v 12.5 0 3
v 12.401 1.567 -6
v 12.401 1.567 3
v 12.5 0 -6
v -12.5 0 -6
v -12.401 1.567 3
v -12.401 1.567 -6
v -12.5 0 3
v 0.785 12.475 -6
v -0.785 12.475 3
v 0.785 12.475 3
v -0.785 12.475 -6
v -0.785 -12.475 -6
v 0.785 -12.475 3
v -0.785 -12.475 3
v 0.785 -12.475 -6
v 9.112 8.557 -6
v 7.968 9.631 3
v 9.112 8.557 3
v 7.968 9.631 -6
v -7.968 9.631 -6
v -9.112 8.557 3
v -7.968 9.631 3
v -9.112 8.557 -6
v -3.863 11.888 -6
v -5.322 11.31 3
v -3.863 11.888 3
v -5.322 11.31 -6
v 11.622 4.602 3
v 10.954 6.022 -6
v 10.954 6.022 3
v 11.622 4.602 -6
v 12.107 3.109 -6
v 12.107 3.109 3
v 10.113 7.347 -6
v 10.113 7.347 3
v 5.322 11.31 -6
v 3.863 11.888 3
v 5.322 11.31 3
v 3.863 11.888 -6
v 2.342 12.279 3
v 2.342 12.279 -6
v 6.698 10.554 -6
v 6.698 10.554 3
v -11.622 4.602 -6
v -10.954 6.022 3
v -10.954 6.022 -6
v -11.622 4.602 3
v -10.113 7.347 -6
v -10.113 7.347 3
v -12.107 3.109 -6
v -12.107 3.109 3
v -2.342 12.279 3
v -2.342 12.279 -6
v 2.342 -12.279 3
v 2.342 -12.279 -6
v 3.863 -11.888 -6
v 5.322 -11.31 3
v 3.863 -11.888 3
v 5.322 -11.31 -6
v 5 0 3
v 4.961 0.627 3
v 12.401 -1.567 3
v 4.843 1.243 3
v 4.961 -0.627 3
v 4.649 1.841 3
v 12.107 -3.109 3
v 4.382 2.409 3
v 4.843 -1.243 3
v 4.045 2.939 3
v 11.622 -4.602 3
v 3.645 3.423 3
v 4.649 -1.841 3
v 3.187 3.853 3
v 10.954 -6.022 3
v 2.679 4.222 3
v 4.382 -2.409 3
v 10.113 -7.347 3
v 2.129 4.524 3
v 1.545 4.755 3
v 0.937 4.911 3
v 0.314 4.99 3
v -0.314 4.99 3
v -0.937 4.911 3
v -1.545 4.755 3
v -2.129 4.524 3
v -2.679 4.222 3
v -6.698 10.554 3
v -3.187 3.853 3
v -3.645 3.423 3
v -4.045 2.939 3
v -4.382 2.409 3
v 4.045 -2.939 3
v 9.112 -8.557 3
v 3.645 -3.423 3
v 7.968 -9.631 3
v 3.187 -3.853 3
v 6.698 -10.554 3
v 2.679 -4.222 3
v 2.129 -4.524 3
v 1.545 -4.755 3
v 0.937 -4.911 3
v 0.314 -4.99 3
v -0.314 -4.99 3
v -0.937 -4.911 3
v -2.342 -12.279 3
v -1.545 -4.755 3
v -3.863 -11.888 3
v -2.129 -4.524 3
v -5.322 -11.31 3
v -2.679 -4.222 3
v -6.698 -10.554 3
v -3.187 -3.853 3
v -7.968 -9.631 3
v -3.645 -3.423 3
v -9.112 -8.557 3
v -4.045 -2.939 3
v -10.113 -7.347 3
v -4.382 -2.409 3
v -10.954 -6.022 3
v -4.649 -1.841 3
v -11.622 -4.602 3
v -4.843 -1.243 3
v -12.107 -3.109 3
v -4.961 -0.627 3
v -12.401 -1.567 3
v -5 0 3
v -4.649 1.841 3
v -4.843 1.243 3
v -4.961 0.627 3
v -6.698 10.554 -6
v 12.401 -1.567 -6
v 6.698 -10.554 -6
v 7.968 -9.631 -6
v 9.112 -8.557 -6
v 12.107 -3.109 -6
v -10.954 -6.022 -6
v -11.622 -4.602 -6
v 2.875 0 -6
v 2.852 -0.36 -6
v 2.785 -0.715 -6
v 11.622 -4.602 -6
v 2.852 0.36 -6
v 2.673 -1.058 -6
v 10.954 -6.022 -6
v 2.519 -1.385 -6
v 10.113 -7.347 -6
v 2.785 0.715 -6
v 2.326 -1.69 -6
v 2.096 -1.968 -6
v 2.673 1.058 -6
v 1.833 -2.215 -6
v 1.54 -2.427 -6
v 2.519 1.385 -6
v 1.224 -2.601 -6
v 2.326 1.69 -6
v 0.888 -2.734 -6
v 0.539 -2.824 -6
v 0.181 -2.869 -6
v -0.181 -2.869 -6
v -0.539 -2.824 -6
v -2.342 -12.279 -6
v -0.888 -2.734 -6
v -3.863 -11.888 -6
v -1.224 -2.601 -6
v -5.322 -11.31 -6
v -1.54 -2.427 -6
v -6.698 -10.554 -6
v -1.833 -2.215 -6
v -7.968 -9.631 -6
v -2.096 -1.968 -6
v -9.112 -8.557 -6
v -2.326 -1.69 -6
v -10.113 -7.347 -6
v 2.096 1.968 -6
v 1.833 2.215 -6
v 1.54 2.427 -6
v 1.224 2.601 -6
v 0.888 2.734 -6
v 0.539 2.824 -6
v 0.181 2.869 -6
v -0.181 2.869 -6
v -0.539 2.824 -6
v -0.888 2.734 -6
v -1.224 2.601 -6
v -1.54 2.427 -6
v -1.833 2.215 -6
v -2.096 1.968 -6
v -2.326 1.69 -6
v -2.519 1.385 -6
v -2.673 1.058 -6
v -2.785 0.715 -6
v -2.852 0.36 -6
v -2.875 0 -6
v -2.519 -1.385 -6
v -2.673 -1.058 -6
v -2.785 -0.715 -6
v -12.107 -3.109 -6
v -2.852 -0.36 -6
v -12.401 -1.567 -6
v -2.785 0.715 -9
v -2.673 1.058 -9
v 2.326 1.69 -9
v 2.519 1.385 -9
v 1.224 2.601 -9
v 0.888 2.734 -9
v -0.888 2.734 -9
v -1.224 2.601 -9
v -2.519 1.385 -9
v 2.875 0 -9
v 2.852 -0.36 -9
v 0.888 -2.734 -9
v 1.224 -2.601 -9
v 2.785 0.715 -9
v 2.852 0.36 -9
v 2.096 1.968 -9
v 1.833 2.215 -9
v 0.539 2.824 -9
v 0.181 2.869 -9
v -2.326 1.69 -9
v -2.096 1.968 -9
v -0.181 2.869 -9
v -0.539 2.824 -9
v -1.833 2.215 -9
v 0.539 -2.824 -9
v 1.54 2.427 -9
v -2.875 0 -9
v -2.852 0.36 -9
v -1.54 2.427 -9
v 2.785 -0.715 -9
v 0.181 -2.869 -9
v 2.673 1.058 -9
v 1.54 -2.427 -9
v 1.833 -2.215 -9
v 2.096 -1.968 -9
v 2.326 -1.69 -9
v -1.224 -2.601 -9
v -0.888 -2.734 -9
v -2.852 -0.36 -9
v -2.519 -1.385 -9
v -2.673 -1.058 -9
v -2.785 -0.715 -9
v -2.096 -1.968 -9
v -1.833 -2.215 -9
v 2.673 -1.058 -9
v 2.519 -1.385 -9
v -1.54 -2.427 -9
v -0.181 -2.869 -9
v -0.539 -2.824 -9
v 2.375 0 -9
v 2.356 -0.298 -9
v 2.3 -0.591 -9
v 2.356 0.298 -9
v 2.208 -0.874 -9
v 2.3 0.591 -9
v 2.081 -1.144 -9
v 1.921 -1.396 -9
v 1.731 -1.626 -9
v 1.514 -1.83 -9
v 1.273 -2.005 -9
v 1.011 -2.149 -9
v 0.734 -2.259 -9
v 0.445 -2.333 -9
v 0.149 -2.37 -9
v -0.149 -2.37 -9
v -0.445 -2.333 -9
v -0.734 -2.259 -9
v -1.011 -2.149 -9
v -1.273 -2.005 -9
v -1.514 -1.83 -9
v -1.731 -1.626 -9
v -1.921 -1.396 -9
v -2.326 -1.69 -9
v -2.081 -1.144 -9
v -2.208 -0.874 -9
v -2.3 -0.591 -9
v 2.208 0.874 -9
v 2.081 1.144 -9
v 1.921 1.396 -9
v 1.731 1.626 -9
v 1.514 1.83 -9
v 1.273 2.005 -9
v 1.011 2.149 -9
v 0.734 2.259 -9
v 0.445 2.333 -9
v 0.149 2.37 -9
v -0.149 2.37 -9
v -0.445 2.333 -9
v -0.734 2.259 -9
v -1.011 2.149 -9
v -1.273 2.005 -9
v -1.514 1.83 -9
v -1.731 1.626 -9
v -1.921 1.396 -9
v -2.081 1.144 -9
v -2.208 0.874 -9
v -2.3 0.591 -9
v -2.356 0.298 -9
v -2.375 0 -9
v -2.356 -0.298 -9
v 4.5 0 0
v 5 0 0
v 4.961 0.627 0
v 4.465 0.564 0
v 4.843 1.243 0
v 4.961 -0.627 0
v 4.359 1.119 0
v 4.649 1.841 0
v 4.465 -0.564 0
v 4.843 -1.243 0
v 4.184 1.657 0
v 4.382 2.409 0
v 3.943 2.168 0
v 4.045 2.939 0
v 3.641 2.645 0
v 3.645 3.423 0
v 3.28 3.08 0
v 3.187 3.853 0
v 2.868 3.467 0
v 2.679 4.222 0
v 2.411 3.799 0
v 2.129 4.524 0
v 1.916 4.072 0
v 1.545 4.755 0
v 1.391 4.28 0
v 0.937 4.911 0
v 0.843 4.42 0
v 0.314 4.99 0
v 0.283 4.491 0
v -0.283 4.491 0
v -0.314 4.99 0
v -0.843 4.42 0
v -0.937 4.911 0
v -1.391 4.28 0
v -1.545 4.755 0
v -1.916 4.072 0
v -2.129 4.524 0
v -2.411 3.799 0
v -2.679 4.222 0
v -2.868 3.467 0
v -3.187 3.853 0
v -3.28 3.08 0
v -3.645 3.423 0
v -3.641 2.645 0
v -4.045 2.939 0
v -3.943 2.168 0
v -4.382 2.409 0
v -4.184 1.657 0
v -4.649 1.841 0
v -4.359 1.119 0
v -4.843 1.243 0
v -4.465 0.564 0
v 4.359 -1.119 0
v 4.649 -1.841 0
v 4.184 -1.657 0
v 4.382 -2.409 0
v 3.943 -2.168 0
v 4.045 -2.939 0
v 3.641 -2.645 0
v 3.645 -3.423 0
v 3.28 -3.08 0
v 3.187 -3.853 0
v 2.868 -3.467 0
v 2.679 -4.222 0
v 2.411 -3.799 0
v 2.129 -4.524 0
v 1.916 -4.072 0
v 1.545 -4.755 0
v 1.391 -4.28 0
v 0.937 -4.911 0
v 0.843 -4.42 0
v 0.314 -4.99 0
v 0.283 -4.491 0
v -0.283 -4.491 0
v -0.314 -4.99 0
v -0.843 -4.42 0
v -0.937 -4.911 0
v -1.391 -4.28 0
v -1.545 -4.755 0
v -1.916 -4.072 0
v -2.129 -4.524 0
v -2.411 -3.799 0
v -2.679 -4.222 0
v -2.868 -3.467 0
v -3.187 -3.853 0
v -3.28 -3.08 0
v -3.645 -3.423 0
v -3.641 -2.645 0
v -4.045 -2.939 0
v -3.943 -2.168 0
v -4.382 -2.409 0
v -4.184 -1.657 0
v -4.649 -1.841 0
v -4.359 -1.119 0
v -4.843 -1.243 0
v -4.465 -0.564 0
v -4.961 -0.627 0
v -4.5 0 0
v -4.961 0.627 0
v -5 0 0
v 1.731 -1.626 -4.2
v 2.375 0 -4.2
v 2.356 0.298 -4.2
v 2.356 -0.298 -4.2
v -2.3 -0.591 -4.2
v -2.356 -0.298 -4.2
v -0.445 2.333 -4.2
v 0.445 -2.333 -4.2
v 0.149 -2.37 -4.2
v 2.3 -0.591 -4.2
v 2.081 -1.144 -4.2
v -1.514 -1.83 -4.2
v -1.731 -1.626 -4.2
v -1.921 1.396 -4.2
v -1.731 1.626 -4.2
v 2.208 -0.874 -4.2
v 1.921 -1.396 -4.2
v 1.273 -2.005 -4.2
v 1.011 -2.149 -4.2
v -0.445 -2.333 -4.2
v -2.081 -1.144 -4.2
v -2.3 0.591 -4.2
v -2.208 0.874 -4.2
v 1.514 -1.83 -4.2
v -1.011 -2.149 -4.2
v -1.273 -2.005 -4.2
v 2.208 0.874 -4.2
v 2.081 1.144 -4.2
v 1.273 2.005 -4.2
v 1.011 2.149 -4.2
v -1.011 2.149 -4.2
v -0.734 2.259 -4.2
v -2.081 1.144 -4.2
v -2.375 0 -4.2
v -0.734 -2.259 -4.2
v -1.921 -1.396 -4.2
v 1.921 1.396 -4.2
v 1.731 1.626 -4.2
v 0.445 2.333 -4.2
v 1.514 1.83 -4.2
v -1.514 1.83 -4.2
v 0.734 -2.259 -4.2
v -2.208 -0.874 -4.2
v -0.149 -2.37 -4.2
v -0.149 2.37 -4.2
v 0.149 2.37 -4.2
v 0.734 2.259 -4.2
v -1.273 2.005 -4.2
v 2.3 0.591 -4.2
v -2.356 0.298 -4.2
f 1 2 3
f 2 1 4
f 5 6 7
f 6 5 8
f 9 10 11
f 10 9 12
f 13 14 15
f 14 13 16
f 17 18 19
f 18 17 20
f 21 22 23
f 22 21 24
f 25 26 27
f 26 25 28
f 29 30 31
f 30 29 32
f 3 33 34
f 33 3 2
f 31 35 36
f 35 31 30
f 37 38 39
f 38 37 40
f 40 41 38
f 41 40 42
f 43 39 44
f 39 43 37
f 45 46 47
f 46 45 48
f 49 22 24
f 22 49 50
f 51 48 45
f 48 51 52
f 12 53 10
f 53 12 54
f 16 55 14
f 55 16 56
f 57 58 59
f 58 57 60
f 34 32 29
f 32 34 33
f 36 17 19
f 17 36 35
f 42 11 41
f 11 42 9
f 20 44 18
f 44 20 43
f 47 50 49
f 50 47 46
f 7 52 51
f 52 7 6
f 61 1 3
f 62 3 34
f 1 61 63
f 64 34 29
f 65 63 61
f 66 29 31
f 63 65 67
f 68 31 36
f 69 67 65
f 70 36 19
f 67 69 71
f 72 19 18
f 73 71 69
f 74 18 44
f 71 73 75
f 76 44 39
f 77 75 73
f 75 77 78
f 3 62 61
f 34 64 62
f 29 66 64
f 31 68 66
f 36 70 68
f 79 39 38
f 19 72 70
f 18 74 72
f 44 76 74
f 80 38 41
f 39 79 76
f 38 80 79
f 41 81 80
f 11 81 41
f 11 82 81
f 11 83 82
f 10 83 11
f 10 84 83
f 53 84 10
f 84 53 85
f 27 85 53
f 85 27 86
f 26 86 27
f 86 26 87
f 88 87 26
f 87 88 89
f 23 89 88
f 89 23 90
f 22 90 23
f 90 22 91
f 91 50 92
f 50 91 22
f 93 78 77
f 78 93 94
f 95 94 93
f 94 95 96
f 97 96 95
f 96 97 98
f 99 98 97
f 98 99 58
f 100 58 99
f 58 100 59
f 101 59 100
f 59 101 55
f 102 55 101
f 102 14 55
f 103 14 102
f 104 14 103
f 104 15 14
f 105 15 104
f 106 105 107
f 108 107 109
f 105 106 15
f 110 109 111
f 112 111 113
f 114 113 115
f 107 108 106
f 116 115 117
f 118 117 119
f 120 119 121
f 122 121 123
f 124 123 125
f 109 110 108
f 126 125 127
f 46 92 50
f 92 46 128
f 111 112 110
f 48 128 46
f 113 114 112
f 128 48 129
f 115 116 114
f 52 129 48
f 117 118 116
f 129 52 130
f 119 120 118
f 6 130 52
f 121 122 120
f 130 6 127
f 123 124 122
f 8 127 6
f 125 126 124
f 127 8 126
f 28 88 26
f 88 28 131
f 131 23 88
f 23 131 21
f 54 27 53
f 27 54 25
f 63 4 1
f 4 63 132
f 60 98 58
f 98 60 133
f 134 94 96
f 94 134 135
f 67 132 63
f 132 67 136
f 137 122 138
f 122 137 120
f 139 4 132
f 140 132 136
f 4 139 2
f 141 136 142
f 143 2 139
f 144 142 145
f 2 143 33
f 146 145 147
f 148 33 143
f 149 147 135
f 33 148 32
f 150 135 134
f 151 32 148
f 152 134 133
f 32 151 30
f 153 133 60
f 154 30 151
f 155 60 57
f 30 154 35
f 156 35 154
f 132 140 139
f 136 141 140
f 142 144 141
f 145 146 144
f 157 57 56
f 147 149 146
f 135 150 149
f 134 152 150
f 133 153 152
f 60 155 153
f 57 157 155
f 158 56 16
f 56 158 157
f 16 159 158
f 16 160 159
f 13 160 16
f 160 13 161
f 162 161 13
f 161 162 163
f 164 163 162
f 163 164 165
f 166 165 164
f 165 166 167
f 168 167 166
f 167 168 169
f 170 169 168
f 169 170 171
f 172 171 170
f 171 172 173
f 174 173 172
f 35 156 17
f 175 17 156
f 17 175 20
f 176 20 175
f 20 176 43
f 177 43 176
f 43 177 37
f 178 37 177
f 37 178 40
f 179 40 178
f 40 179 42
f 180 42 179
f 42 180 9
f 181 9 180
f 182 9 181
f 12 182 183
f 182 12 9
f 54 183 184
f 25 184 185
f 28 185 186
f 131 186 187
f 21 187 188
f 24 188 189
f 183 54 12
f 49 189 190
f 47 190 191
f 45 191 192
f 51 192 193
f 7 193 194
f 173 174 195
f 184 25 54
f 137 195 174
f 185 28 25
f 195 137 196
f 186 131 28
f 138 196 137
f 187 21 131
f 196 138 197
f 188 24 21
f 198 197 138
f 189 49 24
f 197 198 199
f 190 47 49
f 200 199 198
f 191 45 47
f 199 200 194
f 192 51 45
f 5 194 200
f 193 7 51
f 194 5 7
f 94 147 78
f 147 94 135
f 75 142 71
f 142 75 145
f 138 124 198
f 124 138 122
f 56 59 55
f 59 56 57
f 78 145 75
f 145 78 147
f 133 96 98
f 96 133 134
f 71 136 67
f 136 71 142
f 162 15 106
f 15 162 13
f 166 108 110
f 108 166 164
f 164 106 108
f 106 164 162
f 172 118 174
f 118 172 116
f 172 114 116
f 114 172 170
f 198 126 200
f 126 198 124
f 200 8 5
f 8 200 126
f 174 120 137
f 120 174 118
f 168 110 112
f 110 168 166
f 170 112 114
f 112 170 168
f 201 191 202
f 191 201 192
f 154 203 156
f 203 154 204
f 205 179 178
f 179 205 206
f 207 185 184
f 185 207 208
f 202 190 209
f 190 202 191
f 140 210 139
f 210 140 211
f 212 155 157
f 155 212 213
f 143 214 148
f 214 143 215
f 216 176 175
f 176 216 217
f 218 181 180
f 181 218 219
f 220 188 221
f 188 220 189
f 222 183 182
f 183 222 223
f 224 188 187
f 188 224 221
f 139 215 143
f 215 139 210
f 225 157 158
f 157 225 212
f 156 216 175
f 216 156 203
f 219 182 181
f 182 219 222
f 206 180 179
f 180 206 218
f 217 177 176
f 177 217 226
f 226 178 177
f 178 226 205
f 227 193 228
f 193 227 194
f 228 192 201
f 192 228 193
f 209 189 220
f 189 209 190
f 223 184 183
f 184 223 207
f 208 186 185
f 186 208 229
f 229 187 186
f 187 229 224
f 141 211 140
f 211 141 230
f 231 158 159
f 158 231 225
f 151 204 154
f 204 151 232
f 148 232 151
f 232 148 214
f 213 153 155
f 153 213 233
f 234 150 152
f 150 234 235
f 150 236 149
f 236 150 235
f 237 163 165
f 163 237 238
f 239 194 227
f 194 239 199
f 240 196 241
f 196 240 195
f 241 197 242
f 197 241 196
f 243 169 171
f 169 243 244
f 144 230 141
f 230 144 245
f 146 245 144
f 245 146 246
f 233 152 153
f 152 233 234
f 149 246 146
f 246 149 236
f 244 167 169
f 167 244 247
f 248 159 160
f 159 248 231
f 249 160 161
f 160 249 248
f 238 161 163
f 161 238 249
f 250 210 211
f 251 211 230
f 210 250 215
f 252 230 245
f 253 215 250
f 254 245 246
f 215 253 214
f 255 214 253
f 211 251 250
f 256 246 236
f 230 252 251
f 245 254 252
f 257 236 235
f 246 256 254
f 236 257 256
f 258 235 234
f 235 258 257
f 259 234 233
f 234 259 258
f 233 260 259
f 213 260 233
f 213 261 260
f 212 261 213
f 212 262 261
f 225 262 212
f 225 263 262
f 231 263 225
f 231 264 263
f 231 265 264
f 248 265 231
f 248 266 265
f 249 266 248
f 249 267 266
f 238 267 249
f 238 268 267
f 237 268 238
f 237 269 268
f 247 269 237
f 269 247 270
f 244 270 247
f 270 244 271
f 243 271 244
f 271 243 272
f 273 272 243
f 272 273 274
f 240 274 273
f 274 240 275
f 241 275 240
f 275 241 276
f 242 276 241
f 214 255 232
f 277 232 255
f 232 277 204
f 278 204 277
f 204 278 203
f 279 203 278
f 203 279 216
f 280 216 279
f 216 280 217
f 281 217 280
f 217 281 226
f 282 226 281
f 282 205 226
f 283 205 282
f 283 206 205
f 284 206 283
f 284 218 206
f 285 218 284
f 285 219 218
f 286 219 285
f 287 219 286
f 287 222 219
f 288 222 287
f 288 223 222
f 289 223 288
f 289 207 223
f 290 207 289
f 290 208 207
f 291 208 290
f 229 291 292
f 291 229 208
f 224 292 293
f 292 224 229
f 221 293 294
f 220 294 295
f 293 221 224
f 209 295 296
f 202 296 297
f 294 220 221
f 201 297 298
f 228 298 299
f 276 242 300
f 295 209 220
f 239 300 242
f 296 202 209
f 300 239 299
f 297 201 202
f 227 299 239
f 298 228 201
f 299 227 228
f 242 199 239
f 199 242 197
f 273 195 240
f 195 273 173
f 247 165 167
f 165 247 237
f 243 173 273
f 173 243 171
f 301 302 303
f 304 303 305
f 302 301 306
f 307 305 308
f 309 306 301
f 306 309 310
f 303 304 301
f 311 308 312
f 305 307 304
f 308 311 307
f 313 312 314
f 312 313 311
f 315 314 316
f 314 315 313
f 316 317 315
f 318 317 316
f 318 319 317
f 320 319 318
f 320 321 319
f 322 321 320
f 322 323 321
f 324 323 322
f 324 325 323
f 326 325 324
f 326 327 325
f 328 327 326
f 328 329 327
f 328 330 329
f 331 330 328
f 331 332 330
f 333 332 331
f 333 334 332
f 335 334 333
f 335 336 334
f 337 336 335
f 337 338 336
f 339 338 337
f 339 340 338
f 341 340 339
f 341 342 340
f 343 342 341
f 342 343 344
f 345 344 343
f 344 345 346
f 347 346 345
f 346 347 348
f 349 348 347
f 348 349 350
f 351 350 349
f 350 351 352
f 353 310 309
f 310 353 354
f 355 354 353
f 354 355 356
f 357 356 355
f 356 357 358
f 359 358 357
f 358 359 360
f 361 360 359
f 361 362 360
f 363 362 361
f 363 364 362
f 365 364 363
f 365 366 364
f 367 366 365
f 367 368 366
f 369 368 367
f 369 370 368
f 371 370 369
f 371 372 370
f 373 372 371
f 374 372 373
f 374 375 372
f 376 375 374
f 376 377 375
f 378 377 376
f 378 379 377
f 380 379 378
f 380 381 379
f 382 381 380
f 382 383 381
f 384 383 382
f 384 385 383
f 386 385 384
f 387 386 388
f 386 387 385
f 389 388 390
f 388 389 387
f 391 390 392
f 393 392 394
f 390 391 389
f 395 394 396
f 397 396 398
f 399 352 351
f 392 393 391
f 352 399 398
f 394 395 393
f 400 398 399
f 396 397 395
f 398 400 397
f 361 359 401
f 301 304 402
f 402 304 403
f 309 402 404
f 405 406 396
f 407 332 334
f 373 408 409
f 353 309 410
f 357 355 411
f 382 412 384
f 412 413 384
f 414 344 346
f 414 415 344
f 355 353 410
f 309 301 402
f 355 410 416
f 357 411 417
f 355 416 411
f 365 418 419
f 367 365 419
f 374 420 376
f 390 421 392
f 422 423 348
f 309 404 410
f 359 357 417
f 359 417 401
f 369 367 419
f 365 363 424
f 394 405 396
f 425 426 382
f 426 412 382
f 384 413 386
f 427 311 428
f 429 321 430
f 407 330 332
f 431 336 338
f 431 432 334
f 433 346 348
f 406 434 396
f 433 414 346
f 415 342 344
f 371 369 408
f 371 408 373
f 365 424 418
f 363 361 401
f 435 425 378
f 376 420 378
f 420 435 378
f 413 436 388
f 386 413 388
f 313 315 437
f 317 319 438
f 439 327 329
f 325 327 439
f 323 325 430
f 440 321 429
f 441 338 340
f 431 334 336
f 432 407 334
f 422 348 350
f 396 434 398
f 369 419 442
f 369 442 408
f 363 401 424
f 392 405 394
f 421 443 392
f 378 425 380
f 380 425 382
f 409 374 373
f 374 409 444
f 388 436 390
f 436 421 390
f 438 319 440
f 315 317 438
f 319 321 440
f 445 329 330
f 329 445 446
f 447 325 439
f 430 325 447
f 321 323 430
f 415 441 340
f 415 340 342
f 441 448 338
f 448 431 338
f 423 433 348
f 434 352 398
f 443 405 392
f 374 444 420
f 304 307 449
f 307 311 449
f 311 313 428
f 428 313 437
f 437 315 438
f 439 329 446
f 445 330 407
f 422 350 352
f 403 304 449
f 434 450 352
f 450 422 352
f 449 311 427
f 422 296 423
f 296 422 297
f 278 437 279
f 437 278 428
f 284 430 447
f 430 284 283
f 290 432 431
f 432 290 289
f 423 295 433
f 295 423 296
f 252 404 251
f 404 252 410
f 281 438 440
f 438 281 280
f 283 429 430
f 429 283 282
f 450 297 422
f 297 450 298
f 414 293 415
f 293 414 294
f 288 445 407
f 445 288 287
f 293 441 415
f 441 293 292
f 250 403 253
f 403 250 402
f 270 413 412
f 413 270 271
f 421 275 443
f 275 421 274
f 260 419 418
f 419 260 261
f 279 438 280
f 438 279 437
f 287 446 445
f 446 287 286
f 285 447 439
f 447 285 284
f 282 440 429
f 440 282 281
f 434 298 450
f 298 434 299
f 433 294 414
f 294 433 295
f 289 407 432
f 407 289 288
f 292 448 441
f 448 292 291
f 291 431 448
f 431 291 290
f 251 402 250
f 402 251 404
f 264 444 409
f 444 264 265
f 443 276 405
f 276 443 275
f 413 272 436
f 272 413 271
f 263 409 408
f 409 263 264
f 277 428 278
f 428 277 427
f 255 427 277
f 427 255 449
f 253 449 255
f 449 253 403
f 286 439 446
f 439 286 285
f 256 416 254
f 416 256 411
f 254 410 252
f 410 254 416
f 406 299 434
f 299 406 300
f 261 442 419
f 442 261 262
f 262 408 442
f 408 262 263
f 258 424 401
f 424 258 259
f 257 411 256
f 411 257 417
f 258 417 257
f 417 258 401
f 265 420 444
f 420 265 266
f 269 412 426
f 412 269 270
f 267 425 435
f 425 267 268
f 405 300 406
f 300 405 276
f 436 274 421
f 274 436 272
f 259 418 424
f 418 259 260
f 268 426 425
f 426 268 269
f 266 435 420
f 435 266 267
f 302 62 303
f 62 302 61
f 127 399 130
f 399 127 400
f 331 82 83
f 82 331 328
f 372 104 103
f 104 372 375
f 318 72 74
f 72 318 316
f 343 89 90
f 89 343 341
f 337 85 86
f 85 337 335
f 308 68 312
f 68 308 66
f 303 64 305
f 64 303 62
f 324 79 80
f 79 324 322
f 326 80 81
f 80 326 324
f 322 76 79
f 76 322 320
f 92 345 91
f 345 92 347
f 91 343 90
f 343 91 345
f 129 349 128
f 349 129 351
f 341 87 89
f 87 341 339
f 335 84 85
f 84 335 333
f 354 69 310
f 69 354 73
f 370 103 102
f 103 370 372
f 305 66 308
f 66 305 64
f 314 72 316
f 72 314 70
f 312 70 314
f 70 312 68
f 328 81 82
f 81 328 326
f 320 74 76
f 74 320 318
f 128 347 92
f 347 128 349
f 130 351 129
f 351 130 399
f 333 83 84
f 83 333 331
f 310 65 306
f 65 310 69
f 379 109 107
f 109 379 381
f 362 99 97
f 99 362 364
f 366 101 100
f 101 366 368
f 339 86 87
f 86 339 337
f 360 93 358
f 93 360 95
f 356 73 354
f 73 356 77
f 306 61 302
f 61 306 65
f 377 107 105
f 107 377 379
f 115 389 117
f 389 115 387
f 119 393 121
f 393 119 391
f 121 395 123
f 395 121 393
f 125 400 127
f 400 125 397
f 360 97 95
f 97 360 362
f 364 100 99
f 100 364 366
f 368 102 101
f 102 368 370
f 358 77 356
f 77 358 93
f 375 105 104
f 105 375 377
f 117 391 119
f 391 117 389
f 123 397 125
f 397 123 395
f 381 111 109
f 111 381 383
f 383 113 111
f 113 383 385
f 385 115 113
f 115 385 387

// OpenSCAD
$fn = 50;

difference() {
	union() {
		translate(v = [0, 0, -6.0]) {
			cylinder(h = 9, r = 12.5);
		}
		#translate(v = [0, 0, -9.0]) {
			cylinder(h = 9, r = 2.875);
		}
	}
	union() {
		translate(v = [0, 0, 0]) {
			rotate(a = [0, 0, 0]) {
				difference() {
					union() {
						translate(v = [0, 0, -9.0]) {
							cylinder(h = 9, r = 2.25);
						}
						translate(v = [0, 0, -4.2]) {
							cylinder(h = 4.2, r1 = 2.375, r2 = 4.5);
						}
						translate(v = [0, 0, -9.0]) {
							cylinder(h = 9, r = 2.375);
						}
						translate(v = [0, 0, -9.0]) {
							cylinder(h = 9, r = 2.25);
						}
					}
					union();
				}
			}
		}
		#cylinder(h = 3, r = 5.0);
	}
}
